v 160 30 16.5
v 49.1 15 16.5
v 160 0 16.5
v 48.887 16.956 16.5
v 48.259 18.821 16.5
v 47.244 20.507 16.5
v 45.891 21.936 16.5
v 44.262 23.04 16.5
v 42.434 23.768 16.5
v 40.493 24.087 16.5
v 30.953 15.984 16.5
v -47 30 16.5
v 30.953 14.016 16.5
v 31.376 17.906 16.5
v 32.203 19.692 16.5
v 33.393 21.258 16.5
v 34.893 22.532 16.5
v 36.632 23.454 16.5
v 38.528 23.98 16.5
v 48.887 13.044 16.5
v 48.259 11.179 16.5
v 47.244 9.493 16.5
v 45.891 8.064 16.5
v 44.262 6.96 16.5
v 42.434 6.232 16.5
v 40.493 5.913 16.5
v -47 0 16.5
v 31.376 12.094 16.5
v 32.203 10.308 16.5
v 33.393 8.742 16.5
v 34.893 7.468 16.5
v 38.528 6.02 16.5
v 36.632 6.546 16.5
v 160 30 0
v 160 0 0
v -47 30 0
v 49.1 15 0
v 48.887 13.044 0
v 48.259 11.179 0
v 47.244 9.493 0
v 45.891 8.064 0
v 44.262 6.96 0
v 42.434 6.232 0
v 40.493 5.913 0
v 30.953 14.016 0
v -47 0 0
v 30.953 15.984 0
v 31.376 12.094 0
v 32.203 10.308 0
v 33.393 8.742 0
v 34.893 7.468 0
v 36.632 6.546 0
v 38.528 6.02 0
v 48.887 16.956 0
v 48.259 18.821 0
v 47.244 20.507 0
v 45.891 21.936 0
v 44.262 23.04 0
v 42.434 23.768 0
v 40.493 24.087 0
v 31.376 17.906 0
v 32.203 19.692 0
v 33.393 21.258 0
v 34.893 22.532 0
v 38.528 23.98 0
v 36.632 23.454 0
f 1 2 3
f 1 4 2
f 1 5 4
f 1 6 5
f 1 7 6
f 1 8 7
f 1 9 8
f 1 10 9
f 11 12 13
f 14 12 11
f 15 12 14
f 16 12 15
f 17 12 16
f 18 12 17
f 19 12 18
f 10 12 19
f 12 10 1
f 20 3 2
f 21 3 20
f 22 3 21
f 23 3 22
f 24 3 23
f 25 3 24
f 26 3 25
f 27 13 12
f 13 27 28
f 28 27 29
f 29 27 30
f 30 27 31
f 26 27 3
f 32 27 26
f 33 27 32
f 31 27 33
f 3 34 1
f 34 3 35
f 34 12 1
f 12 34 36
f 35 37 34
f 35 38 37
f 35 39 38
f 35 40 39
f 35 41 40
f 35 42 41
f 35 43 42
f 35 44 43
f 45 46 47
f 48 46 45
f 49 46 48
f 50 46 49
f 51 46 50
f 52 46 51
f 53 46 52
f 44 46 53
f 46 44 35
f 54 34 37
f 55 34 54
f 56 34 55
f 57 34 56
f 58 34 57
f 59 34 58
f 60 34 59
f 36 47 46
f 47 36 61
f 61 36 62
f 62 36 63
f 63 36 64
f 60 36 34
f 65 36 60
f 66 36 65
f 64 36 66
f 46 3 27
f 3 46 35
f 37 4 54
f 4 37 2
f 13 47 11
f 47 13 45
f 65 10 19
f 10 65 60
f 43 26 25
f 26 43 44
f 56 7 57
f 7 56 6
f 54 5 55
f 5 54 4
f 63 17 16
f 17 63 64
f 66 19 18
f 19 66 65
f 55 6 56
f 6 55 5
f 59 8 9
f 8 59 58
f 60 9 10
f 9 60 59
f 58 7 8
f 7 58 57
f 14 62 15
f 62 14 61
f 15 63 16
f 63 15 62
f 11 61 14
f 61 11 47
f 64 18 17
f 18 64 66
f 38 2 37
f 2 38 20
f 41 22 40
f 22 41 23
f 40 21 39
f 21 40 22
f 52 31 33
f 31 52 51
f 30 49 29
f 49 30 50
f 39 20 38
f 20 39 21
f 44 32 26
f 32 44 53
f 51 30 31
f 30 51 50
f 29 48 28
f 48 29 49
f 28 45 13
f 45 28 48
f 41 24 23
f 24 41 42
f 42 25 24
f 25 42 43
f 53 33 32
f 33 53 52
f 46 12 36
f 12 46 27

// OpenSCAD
//17

difference() {
    cube([160,30,16.5]);
    translate([40,15,-1.0])
    cylinder(h=25, d1=18.2, d2=18.2);
}
translate([-47, 0, 0])
cube([48,30,16.5]);
